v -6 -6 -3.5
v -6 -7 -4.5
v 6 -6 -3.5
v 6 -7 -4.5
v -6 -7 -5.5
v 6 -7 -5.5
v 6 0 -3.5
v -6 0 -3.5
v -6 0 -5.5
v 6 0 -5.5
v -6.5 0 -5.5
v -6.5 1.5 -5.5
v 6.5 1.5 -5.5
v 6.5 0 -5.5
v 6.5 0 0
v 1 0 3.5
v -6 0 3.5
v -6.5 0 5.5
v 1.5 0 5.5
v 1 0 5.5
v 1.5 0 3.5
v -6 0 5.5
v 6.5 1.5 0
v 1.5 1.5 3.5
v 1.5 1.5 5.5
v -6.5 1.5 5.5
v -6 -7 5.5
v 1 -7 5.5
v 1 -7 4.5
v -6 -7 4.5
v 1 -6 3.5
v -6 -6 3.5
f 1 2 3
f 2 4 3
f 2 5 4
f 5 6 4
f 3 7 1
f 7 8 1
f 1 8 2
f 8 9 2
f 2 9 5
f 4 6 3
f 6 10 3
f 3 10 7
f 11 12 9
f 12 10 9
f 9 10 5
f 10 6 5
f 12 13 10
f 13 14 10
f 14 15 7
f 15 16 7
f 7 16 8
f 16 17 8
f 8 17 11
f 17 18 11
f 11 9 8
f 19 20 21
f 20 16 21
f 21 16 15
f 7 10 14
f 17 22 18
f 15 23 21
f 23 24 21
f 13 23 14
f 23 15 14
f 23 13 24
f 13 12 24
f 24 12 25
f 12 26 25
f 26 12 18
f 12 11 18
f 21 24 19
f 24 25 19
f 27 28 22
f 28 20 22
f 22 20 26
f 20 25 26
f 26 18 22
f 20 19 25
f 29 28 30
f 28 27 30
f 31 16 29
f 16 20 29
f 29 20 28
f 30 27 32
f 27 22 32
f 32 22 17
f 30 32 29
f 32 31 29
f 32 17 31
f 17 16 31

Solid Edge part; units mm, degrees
sketch "Sketch1" plane through (0, 0, 0) normal (0, -1, 0) x (1, 0, 0)
  line L0 (-6.5, -5.5) -> (6.5, -5.5)
  line L1 (6.5, -5.5) -> (6.5, 5.5)
  line L2 (6.5, 5.5) -> (-6.5, 5.5)
  line L3 (-6.5, 5.5) -> (-6.5, -5.5)
  dimension "D1" = 13
  dimension "D2" = 11
extrude "Protrusion1" add sketch "Sketch1" against normal blind 1.5
sketch "Sketch2" plane through (0, 0, 0) normal (0, -1, 0) x (1, 0, 0)
  line L0 (-6.5, 5.5) -> (6.5, 5.5)
  line L1 (6.5, 5.5) -> (6.5, 3.5)
  line L2 (6.5, 3.5) -> (-6.5, 3.5)
  line L3 (-6.5, 3.5) -> (-6.5, 5.5)
  line L4 (-6.5, -5.5) -> (6.5, -5.5)
  line L5 (6.5, -5.5) -> (6.5, -3.5)
  line L6 (6.5, -3.5) -> (-6.5, -3.5)
  line L7 (-6.5, -3.5) -> (-6.5, -5.5)
  dimension "D1" = 2
  dimension "D2" = 2
extrude "side" add sketch "Sketch2" along normal blind 7
sketch "Sketch3" plane through (0, -2.75, 5.5) normal (0, 0, 1) x (-1, 0, 0)
  line L0 (-6.5, 4.25) -> (-1.5, 4.25)
  line L1 (-1.5, 4.25) -> (-1.5, -4.25)
  line L2 (-1.5, -4.25) -> (-6.5, -4.25)
  line L3 (-6.5, -4.25) -> (-6.5, 4.25)
  dimension "D1" = 5
extrude "Extrusionsausschnitt_1" cut sketch "Sketch3" against normal blind 2
sketch "Sketch4" plane through (0, 0, 0) normal (0, -1, 0) x (-1, 0, 0)
  line L0 (-1.5, -3.5) -> (-6.5, 0)
  line L1 (-6.5, 0) -> (-6.5, -3.5)
  line L2 (-6.5, -3.5) -> (-1.5, -3.5)
extrude "Cutout1" cut sketch "Sketch4" against normal up to next
sketch "Sketch5" plane through (0, -7, -4.5) normal (0, -1, 0) x (-1, 0, 0)
  line L0 (-6.5, 1) -> (-6, 1)
  line L1 (-6, 1) -> (-6, -1)
  line L2 (-6, -1) -> (-6.5, -1)
  line L3 (-6.5, -1) -> (-6.5, 1)
  line L4 (6.5, 1) -> (6, 1)
  line L5 (6, 1) -> (6, -1)
  line L6 (6, -1) -> (6.5, -1)
  line L7 (6.5, -1) -> (6.5, 1)
  line L8 (6.5, -8) -> (6, -8)
  line L9 (6, -8) -> (6, -10)
  line L10 (6, -10) -> (6.5, -10)
  line L11 (6.5, -10) -> (6.5, -8)
  line L12 (-1.5, -8) -> (-1, -8)
  line L13 (-1, -8) -> (-1, -10)
  line L14 (-1, -10) -> (-1.5, -10)
  line L15 (-1.5, -10) -> (-1.5, -8)
  dimension "D1" = 0.5
extrude "Cutout2" cut sketch "Sketch5" against normal up to vertex (7 mm away)
chamfer "Fase_1" distance 1 angle 45 2 edges at (0, -7, -3.5) (-2.5, -7, 3.5)
properties material "Nylon, allgemein"
